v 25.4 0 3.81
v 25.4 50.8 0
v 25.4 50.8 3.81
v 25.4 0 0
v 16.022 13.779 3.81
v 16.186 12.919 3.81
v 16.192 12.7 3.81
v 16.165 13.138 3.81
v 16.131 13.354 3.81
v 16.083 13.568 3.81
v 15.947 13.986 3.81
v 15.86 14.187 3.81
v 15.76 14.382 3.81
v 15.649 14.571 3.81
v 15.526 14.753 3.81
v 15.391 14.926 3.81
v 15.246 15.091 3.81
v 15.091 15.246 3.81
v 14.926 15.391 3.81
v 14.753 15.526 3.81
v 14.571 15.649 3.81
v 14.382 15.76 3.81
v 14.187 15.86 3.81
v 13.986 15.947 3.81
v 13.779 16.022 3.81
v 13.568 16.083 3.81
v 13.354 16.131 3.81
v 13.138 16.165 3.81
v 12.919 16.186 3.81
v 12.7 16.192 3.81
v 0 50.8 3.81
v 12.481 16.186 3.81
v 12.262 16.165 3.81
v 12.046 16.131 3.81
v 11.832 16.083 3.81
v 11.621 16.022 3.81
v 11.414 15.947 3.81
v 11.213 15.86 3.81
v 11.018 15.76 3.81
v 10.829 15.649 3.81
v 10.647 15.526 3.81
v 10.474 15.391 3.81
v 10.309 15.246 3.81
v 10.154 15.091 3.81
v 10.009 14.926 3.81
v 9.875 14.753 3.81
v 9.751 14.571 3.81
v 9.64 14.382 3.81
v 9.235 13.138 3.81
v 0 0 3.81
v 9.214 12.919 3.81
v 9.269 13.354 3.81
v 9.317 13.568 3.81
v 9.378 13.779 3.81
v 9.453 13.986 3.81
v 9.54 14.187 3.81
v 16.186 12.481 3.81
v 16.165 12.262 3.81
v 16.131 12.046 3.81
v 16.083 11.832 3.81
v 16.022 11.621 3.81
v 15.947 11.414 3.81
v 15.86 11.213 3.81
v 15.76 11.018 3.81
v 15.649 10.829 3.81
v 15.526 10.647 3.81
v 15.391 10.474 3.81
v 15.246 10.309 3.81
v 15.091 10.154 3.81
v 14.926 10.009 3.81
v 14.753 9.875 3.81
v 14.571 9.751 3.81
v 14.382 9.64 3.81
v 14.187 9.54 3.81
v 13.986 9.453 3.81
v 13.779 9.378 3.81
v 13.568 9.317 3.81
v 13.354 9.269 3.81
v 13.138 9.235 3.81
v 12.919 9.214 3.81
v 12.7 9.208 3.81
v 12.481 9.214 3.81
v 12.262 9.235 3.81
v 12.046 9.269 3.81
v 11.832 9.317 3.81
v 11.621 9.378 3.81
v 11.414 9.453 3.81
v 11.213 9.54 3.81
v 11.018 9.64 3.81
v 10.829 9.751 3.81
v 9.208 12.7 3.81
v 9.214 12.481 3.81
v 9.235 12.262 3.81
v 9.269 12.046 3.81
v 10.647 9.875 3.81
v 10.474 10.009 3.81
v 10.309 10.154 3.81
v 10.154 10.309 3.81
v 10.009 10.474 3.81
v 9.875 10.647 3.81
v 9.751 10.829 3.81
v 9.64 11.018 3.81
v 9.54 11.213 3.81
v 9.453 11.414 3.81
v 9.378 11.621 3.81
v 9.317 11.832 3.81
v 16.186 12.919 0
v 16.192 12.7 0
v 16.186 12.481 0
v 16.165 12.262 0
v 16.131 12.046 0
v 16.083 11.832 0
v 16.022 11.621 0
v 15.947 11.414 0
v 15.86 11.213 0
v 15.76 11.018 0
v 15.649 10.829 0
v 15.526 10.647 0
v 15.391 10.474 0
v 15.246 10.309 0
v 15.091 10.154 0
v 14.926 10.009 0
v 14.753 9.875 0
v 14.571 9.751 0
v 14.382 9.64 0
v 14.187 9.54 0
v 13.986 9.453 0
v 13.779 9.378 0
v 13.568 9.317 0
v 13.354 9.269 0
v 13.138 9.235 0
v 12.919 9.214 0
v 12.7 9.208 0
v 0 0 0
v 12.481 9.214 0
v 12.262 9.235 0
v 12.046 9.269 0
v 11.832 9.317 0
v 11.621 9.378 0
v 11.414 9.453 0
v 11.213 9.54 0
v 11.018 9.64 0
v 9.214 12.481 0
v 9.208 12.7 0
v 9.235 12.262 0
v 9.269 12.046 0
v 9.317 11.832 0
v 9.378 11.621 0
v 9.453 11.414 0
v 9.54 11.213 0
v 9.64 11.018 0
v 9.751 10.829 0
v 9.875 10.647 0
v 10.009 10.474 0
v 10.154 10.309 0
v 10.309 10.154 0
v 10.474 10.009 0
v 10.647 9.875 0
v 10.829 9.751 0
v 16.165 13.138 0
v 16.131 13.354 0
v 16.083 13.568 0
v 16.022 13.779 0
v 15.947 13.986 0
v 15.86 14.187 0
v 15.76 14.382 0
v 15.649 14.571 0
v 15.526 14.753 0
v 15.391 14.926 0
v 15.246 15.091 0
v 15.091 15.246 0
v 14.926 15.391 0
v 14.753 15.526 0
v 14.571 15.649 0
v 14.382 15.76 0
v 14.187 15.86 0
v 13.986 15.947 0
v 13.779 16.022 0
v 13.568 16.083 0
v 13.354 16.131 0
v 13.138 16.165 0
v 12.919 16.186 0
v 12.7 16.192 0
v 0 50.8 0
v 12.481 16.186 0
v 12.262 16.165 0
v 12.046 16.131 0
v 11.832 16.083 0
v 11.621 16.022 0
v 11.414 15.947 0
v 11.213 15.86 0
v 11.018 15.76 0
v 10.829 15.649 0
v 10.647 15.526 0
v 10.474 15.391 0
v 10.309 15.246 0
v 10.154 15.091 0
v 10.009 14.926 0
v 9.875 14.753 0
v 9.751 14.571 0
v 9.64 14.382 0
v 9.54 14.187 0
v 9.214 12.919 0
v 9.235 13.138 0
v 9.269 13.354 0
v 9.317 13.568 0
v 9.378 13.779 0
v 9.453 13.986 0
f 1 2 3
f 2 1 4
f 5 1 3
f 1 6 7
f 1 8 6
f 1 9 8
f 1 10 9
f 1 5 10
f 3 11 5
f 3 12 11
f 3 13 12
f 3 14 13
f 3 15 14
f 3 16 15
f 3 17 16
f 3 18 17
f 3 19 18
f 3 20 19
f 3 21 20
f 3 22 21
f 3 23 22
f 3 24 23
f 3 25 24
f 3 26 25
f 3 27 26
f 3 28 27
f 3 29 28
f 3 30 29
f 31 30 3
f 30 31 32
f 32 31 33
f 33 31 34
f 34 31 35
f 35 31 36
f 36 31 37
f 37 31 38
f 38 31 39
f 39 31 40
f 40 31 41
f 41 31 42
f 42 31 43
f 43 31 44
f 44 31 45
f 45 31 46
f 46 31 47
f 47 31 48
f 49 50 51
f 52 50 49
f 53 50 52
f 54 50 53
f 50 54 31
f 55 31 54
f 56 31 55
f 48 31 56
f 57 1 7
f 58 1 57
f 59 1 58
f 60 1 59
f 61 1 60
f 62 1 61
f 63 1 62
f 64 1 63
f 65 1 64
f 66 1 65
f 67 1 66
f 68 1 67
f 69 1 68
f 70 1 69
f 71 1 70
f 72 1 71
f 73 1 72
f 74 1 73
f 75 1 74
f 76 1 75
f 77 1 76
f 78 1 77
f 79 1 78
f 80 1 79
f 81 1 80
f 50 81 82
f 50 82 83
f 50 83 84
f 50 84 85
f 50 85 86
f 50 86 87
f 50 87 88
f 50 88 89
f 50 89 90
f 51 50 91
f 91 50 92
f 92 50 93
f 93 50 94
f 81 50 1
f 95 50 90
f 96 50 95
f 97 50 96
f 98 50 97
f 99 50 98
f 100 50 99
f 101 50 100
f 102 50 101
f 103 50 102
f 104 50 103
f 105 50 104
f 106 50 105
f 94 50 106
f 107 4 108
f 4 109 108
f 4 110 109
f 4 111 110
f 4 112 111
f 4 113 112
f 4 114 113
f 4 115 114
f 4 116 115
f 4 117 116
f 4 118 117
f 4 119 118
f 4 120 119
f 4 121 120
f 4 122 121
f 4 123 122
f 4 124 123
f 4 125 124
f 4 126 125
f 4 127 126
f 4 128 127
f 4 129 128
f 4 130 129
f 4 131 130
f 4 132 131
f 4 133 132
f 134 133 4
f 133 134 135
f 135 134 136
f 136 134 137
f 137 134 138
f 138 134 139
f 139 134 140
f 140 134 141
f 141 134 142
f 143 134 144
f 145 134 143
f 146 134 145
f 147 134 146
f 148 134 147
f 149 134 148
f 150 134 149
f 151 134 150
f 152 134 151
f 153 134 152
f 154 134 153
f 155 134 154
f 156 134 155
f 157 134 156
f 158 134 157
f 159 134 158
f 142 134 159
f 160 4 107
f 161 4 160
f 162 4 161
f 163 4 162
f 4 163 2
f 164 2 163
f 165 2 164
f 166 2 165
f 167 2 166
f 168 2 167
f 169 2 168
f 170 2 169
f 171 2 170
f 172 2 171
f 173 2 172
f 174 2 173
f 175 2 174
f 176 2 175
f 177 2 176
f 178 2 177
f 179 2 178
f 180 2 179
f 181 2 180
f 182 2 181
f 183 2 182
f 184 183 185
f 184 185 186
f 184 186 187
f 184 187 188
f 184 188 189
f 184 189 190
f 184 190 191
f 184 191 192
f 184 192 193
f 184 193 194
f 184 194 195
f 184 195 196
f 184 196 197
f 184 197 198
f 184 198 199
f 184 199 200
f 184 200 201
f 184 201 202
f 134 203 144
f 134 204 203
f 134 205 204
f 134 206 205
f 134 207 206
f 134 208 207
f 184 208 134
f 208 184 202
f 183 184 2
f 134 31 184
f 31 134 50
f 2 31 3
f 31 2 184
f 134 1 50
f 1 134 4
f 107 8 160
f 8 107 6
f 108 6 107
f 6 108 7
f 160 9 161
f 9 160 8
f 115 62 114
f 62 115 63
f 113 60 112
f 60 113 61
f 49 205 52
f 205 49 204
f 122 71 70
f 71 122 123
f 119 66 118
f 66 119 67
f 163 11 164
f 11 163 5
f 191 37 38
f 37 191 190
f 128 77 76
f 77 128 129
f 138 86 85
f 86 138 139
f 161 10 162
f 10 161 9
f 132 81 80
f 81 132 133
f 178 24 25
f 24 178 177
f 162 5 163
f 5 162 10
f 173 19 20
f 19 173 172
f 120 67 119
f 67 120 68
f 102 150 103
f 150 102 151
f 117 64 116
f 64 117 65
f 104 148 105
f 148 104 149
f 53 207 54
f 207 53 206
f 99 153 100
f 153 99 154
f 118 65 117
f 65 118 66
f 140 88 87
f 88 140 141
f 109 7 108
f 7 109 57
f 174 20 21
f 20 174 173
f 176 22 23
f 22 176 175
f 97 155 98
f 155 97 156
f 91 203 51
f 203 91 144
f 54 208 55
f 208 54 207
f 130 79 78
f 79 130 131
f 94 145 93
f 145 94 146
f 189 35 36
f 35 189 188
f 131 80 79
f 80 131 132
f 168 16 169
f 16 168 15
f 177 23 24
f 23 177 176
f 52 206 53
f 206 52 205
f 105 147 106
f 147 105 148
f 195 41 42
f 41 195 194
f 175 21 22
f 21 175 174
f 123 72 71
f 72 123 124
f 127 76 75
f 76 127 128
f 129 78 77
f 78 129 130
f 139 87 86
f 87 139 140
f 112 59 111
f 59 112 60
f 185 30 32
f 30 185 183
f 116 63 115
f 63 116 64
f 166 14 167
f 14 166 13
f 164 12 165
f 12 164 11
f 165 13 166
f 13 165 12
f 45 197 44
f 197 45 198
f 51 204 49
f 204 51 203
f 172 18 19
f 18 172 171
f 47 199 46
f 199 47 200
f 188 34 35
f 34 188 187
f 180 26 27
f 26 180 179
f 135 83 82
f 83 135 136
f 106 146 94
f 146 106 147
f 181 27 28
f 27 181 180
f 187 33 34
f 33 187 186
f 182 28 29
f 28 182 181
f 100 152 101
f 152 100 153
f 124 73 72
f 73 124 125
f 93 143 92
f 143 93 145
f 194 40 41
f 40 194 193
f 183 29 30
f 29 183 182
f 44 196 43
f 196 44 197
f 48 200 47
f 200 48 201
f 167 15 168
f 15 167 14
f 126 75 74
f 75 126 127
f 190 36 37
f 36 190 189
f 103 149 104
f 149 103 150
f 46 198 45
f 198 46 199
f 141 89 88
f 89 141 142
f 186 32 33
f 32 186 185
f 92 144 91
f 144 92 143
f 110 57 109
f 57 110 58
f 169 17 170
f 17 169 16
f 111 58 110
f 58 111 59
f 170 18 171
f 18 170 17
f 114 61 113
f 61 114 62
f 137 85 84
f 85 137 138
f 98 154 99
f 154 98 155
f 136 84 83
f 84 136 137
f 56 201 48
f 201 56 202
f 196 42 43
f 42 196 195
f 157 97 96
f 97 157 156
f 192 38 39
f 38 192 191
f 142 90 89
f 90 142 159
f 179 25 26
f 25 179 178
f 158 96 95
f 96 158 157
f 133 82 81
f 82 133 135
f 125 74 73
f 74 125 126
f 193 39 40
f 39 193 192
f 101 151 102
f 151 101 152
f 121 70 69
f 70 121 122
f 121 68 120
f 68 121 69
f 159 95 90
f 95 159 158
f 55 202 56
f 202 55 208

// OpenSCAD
/* OpenSCAD file to make a bullet sizer
 * Tom Trebisky  6-16-2026
 */

mmpi = 25.4;
function mm(x) = x * mmpi;

thick = mm ( 0.15 );
width = mm ( 1.0 );
length = mm ( 2.0 );

// dimensions of drill hole
d_diam = mm ( 0.275 );
d_len = thick * 2.0;

// location of drill hole
x1 = mm ( 0.5 );
y1 = mm ( 0.5 );

module drill (x, y) {
    translate ( [ x, y, 0.0 ] )
    translate ( [ 0.0, 0.0, -thick/2.0 ] )
    cylinder ( d=d_diam, h=d_len, $fn=100 );
}

// The first coord x is left to right
// The second coord y is front to back, + to the rear
// The last coord z is up and down
module slab () {
		cube ( [ width, length, thick ] );
}

// The hole is invisible, so we switch to union
//  to be able to see it.

// union () {
difference () {
	slab ();
	drill ( x1, y1 );
}

// THE END
